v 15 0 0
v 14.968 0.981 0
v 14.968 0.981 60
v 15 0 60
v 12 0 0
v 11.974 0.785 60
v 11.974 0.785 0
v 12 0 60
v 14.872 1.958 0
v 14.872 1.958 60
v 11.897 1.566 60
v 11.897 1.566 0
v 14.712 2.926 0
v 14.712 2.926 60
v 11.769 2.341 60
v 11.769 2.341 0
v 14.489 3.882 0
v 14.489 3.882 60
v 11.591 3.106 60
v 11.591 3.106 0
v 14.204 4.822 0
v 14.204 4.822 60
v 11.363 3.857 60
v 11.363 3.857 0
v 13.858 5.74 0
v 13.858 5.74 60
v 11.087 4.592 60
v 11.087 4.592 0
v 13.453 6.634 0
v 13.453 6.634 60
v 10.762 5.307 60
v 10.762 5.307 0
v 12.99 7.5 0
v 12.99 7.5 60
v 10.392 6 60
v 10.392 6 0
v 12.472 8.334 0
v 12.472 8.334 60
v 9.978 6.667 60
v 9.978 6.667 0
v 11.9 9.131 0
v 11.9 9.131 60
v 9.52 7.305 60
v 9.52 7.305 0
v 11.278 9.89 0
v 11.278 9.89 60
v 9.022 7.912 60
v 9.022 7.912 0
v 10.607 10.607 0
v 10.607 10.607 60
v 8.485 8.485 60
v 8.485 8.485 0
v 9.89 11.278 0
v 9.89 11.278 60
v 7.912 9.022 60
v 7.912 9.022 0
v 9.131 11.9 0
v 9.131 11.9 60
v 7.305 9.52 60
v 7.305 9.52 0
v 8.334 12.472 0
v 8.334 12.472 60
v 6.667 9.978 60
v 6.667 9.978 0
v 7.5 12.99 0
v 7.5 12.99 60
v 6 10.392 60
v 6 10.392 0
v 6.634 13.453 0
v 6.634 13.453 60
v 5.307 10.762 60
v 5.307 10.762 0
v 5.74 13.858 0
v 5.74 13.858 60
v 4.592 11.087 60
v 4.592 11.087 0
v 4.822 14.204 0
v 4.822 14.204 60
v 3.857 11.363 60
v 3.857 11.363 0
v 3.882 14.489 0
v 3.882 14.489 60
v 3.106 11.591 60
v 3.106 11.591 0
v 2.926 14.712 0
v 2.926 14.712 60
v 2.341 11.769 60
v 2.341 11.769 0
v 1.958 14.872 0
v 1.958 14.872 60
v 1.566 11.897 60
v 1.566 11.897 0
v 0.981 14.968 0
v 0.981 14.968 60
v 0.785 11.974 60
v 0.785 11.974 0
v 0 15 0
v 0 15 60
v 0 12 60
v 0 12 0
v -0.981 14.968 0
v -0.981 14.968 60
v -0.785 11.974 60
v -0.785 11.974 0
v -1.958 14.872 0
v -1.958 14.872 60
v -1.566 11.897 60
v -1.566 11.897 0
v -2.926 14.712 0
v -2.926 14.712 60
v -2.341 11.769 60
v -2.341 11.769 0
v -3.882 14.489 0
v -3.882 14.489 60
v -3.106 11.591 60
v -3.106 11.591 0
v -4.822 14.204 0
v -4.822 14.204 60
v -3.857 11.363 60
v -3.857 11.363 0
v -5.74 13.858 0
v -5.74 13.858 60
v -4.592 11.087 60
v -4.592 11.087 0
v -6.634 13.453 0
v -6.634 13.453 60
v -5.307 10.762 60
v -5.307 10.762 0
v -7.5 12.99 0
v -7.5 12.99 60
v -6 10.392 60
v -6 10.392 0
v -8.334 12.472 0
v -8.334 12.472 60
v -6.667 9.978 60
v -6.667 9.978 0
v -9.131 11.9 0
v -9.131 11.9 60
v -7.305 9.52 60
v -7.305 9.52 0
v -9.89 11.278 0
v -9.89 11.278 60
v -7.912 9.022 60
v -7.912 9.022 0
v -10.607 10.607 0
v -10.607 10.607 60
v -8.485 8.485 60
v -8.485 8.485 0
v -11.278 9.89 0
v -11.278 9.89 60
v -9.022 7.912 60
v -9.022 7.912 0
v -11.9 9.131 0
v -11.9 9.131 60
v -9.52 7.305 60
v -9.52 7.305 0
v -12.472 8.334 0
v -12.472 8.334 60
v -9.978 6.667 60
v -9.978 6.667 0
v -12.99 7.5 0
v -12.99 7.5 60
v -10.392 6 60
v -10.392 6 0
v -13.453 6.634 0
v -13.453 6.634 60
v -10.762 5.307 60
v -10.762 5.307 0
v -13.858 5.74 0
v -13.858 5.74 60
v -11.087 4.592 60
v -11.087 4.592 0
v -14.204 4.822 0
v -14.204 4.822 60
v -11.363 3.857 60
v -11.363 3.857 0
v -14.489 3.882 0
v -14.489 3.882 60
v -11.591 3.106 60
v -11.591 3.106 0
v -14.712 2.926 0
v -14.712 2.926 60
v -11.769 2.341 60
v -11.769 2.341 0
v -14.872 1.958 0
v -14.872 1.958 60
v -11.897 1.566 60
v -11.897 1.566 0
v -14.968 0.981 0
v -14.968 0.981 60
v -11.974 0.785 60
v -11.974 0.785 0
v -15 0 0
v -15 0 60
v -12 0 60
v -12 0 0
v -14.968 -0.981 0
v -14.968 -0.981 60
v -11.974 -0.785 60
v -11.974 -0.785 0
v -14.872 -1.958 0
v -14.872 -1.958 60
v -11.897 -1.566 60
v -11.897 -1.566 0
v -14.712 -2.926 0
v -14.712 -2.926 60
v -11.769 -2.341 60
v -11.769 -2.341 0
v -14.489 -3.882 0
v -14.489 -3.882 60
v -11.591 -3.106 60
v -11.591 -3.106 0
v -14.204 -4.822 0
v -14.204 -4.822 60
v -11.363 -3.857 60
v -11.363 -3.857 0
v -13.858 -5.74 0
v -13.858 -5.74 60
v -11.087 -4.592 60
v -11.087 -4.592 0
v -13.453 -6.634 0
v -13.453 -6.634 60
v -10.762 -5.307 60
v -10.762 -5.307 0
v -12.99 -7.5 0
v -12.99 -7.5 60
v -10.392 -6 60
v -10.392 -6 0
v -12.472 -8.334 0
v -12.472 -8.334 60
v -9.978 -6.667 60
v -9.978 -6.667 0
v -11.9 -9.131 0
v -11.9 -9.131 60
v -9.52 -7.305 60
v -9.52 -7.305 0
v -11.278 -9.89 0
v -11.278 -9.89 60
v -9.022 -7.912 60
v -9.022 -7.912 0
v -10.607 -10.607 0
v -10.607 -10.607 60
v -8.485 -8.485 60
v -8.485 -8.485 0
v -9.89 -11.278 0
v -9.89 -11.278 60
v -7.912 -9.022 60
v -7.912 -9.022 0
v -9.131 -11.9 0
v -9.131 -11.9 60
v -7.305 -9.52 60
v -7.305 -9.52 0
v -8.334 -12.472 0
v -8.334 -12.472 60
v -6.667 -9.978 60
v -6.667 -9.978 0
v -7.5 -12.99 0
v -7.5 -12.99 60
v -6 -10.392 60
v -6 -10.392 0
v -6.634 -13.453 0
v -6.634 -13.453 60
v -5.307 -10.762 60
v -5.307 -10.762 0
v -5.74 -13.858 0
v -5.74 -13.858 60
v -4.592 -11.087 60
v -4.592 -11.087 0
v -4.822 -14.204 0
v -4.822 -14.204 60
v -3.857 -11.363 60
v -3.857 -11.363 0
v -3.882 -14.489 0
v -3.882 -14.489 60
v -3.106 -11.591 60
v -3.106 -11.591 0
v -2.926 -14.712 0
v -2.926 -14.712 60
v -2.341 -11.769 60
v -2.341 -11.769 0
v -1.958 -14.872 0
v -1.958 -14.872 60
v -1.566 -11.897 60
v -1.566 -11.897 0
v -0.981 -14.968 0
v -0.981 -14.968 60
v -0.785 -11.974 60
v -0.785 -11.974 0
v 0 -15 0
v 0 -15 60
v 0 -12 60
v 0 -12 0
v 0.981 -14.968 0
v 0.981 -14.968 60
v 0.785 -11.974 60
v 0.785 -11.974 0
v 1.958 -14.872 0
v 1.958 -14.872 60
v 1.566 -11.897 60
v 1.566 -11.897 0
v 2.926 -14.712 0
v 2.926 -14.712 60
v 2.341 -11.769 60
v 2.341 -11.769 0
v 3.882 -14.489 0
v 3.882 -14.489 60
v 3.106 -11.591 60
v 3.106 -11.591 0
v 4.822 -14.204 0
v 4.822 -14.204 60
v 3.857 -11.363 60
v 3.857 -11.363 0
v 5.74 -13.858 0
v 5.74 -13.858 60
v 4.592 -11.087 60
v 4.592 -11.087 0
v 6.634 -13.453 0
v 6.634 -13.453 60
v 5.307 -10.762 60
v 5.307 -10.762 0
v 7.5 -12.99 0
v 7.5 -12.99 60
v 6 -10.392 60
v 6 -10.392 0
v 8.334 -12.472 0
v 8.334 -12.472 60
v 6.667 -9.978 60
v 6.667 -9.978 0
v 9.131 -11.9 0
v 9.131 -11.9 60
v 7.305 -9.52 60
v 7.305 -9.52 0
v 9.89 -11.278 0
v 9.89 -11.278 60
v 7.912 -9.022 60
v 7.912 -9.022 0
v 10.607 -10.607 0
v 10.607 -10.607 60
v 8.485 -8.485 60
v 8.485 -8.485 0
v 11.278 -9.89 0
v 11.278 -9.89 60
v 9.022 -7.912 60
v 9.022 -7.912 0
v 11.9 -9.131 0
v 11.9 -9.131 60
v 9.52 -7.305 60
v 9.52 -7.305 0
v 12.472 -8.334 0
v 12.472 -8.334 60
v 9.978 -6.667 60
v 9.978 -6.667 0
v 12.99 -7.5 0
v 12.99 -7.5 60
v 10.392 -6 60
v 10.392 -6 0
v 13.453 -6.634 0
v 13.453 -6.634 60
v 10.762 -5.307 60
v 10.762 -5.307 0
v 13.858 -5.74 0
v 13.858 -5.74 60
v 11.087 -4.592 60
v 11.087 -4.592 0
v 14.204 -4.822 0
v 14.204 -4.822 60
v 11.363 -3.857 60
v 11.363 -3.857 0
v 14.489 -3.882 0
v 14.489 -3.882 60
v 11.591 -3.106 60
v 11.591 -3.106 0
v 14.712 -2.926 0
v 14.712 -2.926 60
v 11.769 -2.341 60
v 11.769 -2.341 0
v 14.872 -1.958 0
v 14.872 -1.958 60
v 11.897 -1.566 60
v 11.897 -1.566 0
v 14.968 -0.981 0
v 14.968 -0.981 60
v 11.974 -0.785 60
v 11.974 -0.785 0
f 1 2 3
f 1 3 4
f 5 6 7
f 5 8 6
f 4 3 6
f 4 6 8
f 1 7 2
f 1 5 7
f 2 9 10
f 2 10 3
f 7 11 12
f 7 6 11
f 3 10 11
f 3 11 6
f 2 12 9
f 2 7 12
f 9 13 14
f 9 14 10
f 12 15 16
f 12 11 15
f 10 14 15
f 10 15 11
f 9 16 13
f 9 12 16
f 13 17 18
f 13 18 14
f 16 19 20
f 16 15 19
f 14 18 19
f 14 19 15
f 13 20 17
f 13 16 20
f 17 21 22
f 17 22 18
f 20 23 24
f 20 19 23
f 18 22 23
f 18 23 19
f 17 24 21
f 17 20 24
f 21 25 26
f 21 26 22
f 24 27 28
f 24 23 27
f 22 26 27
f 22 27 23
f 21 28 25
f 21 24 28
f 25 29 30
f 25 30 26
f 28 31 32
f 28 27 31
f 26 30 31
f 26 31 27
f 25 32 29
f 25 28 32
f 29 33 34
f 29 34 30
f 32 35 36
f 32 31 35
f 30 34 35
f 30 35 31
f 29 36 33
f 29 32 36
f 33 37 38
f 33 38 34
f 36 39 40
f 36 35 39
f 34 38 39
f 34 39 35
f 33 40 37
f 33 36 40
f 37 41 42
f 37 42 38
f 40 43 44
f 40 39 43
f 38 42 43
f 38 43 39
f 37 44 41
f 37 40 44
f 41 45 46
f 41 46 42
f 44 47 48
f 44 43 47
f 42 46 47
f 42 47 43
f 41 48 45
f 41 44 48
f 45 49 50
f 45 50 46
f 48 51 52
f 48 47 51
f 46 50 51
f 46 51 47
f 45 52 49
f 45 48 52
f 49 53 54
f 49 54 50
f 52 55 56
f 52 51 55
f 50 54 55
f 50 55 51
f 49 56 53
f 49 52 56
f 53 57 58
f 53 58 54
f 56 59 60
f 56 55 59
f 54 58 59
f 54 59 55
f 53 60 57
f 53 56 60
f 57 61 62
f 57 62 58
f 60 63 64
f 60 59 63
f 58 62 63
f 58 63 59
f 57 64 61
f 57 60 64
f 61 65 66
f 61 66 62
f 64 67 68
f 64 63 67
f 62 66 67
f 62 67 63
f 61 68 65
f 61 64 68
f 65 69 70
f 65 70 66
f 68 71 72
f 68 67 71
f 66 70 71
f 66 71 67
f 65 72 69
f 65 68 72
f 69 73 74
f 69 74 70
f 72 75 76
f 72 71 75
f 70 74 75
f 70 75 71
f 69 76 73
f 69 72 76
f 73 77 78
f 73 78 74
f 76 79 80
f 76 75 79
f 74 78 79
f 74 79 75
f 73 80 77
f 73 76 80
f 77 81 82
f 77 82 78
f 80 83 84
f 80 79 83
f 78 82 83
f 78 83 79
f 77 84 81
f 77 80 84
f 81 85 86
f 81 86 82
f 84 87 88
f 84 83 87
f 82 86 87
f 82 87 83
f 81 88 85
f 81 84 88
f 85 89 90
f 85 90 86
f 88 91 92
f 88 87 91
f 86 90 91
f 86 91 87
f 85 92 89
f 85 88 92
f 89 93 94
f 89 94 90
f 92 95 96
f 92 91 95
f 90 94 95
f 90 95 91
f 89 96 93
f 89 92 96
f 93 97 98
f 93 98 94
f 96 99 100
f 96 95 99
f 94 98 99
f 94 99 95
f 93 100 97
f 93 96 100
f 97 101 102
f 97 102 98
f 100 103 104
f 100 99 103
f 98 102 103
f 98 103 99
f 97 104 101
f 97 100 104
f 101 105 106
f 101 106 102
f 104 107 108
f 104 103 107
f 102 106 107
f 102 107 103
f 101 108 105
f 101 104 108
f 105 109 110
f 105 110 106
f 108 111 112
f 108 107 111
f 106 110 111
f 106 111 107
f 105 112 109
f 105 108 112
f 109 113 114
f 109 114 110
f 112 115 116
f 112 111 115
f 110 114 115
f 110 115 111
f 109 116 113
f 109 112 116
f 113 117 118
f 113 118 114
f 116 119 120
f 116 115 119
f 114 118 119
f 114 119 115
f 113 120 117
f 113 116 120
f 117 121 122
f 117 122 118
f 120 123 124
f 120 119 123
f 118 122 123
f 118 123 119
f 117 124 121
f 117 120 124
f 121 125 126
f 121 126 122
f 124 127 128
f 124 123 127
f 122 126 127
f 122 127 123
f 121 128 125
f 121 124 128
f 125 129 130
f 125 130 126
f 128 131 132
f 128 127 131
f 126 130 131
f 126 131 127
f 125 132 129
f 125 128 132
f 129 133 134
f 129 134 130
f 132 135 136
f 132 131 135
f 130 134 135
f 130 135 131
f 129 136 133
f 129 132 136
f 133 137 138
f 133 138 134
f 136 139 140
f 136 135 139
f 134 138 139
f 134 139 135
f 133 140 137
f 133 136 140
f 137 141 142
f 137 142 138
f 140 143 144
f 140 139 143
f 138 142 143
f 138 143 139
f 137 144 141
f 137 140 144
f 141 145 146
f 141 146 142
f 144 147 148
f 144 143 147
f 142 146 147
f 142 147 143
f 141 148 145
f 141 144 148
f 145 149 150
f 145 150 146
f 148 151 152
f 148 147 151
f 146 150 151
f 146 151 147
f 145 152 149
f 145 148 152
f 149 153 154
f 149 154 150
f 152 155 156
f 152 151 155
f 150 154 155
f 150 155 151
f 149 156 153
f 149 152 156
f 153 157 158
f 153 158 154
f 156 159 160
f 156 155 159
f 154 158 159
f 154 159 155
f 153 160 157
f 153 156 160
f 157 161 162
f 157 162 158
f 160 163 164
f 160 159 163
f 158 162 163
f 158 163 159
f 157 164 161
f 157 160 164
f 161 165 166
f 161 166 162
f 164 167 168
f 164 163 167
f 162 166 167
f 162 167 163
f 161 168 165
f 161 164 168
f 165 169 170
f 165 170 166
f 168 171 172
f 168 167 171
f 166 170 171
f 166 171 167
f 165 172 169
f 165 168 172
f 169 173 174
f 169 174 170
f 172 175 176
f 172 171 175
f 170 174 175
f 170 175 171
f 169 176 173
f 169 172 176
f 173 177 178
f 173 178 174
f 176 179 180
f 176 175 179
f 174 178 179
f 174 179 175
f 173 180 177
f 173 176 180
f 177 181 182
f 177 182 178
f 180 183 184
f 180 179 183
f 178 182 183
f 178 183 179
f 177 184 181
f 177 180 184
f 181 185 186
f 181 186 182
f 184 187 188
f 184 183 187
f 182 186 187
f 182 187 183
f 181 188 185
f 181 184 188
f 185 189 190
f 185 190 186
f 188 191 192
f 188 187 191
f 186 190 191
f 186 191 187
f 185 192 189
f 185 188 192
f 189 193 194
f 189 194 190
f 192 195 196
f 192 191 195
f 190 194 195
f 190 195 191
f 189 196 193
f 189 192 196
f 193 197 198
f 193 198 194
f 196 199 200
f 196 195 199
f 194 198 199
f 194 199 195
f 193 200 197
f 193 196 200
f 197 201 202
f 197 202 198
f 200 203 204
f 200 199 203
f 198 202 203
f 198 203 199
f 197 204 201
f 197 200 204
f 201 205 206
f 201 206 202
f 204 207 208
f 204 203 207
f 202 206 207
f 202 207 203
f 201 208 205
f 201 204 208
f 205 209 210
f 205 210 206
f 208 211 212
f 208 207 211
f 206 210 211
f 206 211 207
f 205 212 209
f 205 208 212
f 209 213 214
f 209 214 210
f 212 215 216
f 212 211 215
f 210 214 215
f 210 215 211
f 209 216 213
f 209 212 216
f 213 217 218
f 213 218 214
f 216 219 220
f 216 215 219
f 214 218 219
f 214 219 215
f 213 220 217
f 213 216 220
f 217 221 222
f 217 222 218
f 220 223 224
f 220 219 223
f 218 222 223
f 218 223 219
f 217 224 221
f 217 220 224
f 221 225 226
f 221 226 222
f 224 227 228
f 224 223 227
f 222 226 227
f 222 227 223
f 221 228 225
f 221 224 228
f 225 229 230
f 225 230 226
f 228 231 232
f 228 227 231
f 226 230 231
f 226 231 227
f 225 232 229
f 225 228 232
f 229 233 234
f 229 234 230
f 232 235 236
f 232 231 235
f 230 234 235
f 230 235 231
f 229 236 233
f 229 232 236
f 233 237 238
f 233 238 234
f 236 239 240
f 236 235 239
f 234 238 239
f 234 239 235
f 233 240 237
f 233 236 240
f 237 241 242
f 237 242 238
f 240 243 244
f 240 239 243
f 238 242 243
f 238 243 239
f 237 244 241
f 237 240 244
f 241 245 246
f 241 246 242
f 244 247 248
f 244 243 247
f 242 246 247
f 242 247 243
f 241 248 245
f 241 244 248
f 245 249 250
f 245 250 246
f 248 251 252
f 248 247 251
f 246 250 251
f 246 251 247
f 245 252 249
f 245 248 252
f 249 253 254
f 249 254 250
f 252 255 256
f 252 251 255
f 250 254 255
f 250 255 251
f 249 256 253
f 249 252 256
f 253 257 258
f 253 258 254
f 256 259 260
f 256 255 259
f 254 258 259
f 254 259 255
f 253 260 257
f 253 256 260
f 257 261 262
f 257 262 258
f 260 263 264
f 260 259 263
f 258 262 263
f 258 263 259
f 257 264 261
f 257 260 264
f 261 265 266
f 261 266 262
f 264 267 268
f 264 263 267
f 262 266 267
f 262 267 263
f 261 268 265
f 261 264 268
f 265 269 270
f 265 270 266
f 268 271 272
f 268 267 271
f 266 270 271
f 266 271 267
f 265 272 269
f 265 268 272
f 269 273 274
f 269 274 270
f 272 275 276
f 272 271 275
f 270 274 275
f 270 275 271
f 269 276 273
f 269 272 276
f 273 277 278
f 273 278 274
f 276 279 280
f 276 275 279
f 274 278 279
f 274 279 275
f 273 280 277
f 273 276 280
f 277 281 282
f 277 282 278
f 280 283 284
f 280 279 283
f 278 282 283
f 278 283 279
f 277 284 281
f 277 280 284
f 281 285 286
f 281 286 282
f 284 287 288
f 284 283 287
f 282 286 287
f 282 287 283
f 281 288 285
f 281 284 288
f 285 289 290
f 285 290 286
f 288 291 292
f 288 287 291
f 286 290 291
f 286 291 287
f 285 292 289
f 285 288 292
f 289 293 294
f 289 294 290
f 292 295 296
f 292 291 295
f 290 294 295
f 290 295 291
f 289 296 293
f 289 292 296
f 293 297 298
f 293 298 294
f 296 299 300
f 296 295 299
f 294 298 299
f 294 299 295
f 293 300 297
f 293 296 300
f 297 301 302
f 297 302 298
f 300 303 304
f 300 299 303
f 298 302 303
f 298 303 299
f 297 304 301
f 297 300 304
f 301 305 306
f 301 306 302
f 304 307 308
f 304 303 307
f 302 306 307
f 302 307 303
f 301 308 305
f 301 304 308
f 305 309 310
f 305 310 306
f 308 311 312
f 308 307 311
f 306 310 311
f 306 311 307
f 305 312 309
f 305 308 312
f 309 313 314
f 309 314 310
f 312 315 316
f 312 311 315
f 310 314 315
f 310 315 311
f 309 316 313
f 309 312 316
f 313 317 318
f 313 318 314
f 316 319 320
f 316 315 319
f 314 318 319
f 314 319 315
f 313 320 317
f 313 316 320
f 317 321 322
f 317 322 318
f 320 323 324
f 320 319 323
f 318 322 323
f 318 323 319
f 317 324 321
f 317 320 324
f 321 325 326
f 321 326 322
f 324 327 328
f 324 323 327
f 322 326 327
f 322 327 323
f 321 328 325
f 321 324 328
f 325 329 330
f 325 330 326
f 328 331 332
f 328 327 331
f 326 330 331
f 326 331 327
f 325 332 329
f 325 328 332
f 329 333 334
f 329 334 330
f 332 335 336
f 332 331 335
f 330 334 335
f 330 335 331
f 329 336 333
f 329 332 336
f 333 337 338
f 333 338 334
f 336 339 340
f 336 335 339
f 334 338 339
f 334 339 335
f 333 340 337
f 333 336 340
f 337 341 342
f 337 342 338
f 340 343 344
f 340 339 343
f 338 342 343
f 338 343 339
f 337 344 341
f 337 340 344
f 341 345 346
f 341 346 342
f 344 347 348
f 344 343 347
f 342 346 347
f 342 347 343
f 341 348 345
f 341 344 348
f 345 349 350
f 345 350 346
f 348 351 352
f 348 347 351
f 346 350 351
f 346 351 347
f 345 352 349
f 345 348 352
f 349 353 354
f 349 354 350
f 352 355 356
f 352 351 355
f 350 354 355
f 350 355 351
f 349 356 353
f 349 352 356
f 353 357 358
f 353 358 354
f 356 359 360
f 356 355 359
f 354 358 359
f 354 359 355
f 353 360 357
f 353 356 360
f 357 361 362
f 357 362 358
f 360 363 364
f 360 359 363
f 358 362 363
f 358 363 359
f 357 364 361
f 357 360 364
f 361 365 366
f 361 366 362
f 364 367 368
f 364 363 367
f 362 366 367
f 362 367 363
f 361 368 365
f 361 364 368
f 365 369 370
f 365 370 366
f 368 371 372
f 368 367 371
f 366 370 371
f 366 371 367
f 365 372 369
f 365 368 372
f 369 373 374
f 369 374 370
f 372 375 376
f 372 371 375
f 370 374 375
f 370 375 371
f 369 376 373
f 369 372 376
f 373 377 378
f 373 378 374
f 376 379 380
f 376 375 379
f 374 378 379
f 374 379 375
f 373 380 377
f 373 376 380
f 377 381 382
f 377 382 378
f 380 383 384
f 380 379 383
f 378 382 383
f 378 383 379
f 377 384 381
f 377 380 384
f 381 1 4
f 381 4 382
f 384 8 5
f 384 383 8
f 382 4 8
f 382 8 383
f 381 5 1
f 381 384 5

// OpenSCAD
// Original MechIntel educational model. CC0-1.0. Units: mm.
// Not a standardized or load-rated component.
$fn=96;
outer_diameter=30;
inner_diameter=24;
height=60;
difference(){ cylinder(d=outer_diameter,h=height); if(inner_diameter>0) translate([0,0,-1]) cylinder(d=inner_diameter,h=height+2); }
